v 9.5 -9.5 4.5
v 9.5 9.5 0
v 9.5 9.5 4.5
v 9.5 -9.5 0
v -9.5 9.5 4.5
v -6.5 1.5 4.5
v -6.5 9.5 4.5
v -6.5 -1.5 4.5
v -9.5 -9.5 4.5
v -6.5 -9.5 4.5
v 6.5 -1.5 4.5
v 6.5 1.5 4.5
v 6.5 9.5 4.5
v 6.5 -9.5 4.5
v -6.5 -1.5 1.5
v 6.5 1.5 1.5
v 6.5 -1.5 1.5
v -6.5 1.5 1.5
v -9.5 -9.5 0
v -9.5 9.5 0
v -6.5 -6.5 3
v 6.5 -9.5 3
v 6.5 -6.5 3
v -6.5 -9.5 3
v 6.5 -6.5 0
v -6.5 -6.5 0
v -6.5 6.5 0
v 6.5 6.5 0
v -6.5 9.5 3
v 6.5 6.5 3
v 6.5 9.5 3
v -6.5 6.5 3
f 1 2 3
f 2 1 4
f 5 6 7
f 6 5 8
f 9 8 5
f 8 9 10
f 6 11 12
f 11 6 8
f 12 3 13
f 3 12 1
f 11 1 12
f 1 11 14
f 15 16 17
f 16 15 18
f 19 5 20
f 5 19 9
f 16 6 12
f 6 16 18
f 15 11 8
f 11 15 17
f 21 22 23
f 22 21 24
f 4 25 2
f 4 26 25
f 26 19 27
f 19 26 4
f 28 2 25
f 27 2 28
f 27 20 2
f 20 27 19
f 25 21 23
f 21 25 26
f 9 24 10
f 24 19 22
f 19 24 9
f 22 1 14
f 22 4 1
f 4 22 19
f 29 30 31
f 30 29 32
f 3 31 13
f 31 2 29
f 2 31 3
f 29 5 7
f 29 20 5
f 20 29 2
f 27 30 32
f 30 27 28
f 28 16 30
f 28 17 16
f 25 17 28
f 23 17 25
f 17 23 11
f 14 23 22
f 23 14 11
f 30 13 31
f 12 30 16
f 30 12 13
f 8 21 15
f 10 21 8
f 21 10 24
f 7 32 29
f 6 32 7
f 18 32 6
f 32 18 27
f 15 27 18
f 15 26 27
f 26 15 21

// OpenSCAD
#translate([0, 0, 3]) {
    cube(size = [19, 3, 3], center=true);
}
translate([0, -8, 1.5]) {
    cube(size = [19, 3, 3], center=true);
}
translate([0, 8, 1.5]) {
    cube(size = [19, 3, 3], center=true);
}
translate([8, 0, 2.25]) {
    cube(size = [3, 19, 4.5], center=true);
}
translate([-8, 0, 2.25]) {
    cube(size = [3, 19, 4.5], center=true);
}
